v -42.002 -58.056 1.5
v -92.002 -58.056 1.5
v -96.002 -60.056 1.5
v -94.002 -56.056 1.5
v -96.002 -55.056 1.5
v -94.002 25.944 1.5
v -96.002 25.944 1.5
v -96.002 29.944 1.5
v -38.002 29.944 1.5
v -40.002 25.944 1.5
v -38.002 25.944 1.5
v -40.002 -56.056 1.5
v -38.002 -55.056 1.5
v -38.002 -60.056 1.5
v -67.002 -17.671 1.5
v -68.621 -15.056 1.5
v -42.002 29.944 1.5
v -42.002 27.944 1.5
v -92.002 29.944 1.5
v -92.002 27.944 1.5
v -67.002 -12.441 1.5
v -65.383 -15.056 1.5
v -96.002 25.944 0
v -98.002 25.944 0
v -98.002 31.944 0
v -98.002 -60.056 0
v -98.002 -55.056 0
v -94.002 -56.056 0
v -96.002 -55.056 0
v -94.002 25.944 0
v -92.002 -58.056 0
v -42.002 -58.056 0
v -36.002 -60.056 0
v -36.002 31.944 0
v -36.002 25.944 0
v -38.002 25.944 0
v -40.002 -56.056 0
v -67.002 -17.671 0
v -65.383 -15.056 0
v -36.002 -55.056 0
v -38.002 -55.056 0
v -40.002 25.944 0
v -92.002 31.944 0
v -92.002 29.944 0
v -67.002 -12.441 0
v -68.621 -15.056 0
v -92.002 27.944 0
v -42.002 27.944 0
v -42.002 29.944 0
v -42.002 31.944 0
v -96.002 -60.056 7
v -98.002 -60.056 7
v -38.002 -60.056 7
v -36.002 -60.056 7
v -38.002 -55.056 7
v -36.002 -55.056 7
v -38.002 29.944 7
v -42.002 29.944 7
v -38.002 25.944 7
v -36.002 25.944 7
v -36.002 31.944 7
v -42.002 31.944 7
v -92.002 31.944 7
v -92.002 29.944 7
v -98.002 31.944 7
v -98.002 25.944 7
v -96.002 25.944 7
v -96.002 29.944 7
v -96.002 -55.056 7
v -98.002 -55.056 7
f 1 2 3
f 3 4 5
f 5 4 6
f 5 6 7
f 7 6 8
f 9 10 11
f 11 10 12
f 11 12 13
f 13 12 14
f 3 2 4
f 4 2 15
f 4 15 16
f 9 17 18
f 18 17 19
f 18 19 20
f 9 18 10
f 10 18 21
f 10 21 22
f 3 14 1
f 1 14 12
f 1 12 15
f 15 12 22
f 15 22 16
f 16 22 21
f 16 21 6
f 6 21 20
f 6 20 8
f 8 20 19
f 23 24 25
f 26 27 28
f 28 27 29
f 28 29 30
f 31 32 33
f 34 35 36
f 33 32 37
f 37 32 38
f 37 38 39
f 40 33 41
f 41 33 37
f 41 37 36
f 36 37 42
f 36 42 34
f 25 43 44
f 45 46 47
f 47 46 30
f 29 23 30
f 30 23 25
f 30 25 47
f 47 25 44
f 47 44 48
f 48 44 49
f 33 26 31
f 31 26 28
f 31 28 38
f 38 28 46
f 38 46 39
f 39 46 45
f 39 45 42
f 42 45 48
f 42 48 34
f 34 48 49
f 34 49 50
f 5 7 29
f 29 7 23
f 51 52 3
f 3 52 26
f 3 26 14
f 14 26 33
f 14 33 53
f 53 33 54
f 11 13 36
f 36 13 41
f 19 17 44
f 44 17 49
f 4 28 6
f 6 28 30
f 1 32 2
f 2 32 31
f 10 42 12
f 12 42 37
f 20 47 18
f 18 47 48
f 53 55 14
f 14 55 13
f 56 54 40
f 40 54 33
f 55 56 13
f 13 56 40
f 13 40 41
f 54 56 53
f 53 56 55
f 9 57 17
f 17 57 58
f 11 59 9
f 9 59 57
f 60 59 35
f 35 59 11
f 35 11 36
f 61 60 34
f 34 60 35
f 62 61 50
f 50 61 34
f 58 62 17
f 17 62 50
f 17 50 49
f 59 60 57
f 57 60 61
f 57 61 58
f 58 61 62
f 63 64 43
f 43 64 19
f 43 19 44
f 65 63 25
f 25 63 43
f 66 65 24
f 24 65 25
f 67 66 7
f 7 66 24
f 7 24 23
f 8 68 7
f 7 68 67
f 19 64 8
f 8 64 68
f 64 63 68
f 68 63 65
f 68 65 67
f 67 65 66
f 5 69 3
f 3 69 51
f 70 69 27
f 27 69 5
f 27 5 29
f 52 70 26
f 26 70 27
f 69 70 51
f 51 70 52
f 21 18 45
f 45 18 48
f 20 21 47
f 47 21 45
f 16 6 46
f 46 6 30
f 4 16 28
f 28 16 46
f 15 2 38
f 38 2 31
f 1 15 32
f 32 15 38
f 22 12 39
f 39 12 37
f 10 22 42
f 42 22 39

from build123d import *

# Parameters (mm, degrees)
CROQUIS1_W              = 58
CROQUIS1_H              = 90
CROQUIS1_W_2            = 54
CROQUIS1_H_2            = 86
SALIENTE_EXTRUIR1_DEPTH = 1.5
CROQUIS2_W              = 2
CROQUIS2_H              = 5
SALIENTE_EXTRUIR2_DEPTH = 7
SALIENTE_EXTRUIR3_START = -1.5
SALIENTE_EXTRUIR3_DEPTH = 1.5


with BuildPart() as part:
    # Croquis1 → Saliente-Extruir1 (new body)
    with BuildSketch(Plane.XY):
        with Locations((-67.00177265, -15.055922694)):
            Rectangle(CROQUIS1_W, CROQUIS1_H)
        with Locations((-67.00177265, -15.055922694)):
            Rectangle(CROQUIS1_W_2, CROQUIS1_H_2, mode=Mode.SUBTRACT)
    extrude(amount=SALIENTE_EXTRUIR1_DEPTH)

    # Croquis2 → Saliente-Extruir2 (add)
    with BuildSketch(Plane(origin=(0, 0, 0), x_dir=(-1, 0, 0), z_dir=(0, 0, -1))):
        with Locations((37.00177265, -57.555922694)):
            Rectangle(CROQUIS2_W, CROQUIS2_H)
        Polygon((38.00177265, 29.944077306), (38.00177265, 25.944077306), (36.00177265, 25.944077306), (36.00177265, 31.944077306), (42.00177265, 31.944077306), (42.00177265, 29.944077306), align=None)
        Polygon((92.00177265, 29.944077306), (96.00177265, 29.944077306), (96.00177265, 25.944077306), (98.00177265, 25.944077306), (98.00177265, 31.944077306), (92.00177265, 31.944077306), align=None)
        with Locations((97.00177265, -57.555922694)):
            Rectangle(CROQUIS2_W, CROQUIS2_H)
    extrude(amount=-SALIENTE_EXTRUIR2_DEPTH)

    # Croquis3 → Saliente-Extruir3 (add)
    with BuildSketch(Plane(origin=(0, 0, 0), x_dir=(-1, 0, 0), z_dir=(0, 0, -1)).offset(SALIENTE_EXTRUIR3_START)):
        Polygon((94.00177265, -56.055922694), (68.620820269, -15.055922694), (94.00177265, 25.944077306), (94.00177265, 27.944077306), (92.00177265, 27.944077306), (67.00177265, -12.440538078), (42.00177265, 27.944077306), (40.00177265, 27.944077306), (40.00177265, 25.944077306), (65.382725031, -15.055922694), (40.00177265, -56.055922694), (40.00177265, -58.055922694), (42.00177265, -58.055922694), (67.00177265, -17.671307309), (92.00177265, -58.055922694), (94.00177265, -58.055922694), align=None)
    extrude(amount=SALIENTE_EXTRUIR3_DEPTH)


solid = part.part
